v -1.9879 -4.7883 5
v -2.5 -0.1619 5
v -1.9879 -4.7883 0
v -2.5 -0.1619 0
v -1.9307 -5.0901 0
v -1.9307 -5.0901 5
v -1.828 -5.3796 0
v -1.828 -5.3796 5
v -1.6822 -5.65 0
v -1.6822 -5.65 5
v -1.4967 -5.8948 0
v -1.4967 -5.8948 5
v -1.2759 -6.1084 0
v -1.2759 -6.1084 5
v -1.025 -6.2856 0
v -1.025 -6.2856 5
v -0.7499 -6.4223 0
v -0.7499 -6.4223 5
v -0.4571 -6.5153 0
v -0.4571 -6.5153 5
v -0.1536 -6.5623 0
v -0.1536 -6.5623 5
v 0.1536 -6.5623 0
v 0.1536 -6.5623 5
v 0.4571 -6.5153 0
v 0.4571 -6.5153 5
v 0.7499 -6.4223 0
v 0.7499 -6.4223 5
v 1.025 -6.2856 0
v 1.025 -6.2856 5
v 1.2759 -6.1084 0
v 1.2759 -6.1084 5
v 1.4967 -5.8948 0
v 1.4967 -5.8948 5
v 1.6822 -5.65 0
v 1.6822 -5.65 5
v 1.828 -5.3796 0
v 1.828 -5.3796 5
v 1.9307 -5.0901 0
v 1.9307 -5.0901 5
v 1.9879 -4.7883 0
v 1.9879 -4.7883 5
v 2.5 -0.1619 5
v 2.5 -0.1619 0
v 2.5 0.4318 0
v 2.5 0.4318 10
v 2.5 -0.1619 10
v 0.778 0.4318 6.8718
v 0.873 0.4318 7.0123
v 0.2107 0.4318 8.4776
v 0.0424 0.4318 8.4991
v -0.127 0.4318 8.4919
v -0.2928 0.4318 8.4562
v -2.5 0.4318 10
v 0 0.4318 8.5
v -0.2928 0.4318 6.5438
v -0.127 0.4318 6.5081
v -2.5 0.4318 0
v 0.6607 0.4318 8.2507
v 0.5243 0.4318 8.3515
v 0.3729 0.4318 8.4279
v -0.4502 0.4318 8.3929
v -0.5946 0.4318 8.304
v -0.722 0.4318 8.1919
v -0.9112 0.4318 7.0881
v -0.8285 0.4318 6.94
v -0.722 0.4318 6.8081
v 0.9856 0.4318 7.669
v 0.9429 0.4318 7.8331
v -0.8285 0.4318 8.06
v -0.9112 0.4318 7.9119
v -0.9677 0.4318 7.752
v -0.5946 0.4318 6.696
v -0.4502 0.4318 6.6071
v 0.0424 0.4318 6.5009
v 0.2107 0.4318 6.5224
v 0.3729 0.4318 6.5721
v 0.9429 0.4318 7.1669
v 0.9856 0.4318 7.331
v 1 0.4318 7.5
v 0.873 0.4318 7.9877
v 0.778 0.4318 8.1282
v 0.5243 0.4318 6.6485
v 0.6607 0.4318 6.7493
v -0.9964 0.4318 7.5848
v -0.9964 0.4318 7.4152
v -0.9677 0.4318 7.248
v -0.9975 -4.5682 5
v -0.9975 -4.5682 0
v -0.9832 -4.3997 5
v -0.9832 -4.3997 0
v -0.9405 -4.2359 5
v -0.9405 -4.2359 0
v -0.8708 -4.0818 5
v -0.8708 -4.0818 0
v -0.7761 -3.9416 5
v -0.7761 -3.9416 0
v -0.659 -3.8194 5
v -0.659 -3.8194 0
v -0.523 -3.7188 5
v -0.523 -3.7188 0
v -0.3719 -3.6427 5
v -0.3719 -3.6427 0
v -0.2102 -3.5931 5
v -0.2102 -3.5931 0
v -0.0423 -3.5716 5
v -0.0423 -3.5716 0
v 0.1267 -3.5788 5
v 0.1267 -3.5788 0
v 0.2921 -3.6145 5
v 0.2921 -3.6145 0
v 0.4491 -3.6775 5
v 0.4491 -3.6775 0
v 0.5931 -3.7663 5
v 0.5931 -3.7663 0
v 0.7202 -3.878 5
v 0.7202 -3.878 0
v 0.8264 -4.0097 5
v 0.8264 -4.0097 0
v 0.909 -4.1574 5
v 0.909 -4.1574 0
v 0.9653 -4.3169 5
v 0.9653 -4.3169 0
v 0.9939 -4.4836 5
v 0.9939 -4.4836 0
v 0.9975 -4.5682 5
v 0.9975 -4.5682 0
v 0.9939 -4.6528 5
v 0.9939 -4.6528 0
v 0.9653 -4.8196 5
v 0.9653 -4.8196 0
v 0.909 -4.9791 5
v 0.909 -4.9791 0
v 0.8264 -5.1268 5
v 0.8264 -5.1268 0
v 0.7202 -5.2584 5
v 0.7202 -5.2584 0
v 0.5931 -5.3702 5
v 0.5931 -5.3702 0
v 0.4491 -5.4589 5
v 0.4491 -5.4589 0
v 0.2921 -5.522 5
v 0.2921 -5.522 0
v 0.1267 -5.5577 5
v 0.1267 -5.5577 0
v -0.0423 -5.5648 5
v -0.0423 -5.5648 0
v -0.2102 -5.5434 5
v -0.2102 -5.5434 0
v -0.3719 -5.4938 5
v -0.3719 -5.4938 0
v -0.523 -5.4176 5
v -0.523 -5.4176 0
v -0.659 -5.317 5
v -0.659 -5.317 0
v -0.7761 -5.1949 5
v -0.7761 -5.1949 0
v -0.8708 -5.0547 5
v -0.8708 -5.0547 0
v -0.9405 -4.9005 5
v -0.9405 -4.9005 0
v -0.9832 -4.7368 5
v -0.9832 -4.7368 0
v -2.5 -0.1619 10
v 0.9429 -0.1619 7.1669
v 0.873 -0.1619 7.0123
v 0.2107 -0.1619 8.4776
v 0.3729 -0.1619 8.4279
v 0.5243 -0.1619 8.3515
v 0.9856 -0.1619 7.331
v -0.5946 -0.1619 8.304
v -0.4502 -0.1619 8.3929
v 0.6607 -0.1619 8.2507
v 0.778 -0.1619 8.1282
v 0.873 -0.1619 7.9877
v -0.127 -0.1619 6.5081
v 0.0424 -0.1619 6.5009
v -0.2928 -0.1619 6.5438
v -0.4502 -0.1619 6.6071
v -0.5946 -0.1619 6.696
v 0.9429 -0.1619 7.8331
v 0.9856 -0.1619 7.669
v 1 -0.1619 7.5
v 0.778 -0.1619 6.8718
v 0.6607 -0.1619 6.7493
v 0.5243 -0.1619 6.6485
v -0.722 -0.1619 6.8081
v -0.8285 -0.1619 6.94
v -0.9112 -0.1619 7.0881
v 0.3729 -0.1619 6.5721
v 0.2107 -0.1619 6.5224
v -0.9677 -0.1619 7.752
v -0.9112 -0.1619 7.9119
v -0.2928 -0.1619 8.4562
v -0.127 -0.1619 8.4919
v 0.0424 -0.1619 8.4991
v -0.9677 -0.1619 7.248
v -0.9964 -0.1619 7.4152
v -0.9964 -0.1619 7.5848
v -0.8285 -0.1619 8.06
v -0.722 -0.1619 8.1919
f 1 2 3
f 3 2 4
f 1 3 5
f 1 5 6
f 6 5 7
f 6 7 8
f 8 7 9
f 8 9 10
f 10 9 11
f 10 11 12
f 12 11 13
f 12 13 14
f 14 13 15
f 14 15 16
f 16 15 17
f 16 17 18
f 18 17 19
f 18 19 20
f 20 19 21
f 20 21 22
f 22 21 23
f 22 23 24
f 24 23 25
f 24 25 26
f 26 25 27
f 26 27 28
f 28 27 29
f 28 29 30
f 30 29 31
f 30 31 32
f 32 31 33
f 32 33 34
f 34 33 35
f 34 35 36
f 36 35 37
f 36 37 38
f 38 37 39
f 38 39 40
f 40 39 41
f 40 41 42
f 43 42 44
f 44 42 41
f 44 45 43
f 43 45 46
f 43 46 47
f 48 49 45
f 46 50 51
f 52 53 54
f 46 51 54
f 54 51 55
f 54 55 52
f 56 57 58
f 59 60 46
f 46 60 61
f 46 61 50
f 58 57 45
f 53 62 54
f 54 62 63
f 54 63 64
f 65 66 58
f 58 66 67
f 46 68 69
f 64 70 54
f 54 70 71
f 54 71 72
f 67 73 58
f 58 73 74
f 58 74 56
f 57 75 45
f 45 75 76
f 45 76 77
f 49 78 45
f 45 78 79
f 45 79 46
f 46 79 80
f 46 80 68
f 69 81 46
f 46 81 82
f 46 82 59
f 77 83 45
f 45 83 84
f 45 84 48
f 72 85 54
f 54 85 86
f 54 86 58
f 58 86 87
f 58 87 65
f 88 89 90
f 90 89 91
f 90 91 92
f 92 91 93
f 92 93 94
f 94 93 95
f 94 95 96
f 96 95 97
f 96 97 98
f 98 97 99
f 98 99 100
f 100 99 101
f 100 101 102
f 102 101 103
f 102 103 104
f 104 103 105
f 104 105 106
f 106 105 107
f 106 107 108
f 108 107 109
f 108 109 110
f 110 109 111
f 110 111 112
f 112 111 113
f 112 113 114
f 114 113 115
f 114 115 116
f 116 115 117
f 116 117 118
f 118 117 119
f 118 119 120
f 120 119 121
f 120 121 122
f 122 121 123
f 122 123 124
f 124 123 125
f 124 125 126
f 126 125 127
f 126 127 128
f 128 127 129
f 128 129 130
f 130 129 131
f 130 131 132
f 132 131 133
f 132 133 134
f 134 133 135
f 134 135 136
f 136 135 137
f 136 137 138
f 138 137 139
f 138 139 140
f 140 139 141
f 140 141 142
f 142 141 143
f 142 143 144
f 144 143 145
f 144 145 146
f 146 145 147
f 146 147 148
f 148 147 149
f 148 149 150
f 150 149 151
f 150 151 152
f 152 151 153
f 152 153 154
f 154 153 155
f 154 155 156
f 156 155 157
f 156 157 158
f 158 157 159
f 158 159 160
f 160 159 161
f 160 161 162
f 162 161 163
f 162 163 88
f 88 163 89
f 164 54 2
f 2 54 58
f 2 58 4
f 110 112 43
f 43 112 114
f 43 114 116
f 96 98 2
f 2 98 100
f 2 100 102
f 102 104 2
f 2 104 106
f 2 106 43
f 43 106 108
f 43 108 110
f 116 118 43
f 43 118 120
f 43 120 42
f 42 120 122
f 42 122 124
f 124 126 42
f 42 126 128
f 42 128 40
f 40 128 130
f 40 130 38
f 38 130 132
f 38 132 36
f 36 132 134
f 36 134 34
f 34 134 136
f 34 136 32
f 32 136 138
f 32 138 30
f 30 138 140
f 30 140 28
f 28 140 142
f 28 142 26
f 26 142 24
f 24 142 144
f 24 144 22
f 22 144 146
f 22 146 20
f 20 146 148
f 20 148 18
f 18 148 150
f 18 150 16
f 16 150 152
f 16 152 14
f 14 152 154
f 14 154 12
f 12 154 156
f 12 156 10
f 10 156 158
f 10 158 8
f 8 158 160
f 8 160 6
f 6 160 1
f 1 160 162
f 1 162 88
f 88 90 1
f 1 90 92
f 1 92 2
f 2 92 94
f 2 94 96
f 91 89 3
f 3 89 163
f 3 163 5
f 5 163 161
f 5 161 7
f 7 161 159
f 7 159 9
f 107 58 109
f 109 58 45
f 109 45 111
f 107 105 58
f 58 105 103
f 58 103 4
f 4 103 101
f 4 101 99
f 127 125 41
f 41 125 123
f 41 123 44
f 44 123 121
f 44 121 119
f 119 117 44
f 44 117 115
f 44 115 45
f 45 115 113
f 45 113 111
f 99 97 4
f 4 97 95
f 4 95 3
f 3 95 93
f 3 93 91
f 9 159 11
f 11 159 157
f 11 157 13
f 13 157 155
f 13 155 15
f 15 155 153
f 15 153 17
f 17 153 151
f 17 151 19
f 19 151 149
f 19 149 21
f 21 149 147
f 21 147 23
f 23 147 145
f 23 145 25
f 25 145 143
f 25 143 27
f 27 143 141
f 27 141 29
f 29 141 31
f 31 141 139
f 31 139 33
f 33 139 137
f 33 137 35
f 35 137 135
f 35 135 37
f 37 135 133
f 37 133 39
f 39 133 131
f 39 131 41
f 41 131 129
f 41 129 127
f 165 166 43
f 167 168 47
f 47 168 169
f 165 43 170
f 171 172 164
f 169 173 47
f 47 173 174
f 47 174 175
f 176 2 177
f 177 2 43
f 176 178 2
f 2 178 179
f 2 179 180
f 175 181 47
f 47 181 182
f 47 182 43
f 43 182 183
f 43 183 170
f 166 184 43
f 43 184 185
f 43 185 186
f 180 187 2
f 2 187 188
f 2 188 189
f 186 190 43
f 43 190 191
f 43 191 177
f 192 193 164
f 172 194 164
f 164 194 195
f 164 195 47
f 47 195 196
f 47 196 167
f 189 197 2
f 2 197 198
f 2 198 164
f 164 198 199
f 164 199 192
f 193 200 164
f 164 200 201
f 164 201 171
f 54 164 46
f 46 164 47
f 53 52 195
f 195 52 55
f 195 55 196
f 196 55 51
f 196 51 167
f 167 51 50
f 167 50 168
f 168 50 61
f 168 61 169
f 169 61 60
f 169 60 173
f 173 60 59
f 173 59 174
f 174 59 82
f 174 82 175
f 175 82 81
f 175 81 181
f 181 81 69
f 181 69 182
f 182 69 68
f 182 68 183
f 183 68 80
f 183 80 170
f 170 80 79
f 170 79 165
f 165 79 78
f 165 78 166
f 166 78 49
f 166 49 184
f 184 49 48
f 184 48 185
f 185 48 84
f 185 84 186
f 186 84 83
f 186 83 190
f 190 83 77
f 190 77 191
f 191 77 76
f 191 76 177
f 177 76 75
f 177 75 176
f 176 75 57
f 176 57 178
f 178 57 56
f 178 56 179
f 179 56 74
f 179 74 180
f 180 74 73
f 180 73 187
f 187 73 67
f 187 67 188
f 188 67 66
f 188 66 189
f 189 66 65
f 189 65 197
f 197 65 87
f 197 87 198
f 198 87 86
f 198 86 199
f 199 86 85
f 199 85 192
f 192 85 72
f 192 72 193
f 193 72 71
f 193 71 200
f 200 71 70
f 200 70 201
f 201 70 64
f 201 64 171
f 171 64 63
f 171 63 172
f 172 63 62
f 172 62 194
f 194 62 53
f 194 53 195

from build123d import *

# Parameters (mm, degrees)
SKETCH2_R           = 0.9975
BOSS_EXTRUDE2_DEPTH = 5
SKETCH3_W           = 5
SKETCH3_H           = 0.593672978
BOSS_EXTRUDE3_DEPTH = 5
SKETCH8_R           = 1
CUT_EXTRUDE2_DEPTH  = 5


with BuildPart() as part:
    # Sketch2 → Boss-Extrude2 (new body)
    with BuildSketch(Plane.XY):
        with BuildLine():
            Line((2.5, -0.161913769), (2.5, 0.431759209))
            Line((2.5, 0.431759209), (-2.5, 0.431759209))
            Line((-2.5, 0.431759209), (-2.5, -0.161913769))
            Line((-2.5, -0.161913769), (-1.987856888, -4.78829759))
            ThreePointArc((-1.987856888, -4.78829759), (0, -6.568240791), (1.987856888, -4.78829759))
            Line((1.987856888, -4.78829759), (2.5, -0.161913769))
        make_face()
        with Locations((0, -4.568240791)):
            Circle(SKETCH2_R, mode=Mode.SUBTRACT)
    extrude(amount=BOSS_EXTRUDE2_DEPTH)

    # Sketch3 → Boss-Extrude3 (add)
    with BuildSketch(Plane.XY.offset(5)):
        with Locations((0, 0.13492272)):
            Rectangle(SKETCH3_W, SKETCH3_H)
    extrude(amount=BOSS_EXTRUDE3_DEPTH)

    # Sketch8 → Cut-Extrude2 (cut)
    with BuildSketch(Plane(origin=(0, -0.161913769, 0), x_dir=(-1, 0, 0), z_dir=(0, -1, 0))):
        with Locations(Location((0, -7.5, 0), (0, 0, 180))):
            Circle(SKETCH8_R)
    extrude(amount=-CUT_EXTRUDE2_DEPTH, mode=Mode.SUBTRACT)


solid = part.part
